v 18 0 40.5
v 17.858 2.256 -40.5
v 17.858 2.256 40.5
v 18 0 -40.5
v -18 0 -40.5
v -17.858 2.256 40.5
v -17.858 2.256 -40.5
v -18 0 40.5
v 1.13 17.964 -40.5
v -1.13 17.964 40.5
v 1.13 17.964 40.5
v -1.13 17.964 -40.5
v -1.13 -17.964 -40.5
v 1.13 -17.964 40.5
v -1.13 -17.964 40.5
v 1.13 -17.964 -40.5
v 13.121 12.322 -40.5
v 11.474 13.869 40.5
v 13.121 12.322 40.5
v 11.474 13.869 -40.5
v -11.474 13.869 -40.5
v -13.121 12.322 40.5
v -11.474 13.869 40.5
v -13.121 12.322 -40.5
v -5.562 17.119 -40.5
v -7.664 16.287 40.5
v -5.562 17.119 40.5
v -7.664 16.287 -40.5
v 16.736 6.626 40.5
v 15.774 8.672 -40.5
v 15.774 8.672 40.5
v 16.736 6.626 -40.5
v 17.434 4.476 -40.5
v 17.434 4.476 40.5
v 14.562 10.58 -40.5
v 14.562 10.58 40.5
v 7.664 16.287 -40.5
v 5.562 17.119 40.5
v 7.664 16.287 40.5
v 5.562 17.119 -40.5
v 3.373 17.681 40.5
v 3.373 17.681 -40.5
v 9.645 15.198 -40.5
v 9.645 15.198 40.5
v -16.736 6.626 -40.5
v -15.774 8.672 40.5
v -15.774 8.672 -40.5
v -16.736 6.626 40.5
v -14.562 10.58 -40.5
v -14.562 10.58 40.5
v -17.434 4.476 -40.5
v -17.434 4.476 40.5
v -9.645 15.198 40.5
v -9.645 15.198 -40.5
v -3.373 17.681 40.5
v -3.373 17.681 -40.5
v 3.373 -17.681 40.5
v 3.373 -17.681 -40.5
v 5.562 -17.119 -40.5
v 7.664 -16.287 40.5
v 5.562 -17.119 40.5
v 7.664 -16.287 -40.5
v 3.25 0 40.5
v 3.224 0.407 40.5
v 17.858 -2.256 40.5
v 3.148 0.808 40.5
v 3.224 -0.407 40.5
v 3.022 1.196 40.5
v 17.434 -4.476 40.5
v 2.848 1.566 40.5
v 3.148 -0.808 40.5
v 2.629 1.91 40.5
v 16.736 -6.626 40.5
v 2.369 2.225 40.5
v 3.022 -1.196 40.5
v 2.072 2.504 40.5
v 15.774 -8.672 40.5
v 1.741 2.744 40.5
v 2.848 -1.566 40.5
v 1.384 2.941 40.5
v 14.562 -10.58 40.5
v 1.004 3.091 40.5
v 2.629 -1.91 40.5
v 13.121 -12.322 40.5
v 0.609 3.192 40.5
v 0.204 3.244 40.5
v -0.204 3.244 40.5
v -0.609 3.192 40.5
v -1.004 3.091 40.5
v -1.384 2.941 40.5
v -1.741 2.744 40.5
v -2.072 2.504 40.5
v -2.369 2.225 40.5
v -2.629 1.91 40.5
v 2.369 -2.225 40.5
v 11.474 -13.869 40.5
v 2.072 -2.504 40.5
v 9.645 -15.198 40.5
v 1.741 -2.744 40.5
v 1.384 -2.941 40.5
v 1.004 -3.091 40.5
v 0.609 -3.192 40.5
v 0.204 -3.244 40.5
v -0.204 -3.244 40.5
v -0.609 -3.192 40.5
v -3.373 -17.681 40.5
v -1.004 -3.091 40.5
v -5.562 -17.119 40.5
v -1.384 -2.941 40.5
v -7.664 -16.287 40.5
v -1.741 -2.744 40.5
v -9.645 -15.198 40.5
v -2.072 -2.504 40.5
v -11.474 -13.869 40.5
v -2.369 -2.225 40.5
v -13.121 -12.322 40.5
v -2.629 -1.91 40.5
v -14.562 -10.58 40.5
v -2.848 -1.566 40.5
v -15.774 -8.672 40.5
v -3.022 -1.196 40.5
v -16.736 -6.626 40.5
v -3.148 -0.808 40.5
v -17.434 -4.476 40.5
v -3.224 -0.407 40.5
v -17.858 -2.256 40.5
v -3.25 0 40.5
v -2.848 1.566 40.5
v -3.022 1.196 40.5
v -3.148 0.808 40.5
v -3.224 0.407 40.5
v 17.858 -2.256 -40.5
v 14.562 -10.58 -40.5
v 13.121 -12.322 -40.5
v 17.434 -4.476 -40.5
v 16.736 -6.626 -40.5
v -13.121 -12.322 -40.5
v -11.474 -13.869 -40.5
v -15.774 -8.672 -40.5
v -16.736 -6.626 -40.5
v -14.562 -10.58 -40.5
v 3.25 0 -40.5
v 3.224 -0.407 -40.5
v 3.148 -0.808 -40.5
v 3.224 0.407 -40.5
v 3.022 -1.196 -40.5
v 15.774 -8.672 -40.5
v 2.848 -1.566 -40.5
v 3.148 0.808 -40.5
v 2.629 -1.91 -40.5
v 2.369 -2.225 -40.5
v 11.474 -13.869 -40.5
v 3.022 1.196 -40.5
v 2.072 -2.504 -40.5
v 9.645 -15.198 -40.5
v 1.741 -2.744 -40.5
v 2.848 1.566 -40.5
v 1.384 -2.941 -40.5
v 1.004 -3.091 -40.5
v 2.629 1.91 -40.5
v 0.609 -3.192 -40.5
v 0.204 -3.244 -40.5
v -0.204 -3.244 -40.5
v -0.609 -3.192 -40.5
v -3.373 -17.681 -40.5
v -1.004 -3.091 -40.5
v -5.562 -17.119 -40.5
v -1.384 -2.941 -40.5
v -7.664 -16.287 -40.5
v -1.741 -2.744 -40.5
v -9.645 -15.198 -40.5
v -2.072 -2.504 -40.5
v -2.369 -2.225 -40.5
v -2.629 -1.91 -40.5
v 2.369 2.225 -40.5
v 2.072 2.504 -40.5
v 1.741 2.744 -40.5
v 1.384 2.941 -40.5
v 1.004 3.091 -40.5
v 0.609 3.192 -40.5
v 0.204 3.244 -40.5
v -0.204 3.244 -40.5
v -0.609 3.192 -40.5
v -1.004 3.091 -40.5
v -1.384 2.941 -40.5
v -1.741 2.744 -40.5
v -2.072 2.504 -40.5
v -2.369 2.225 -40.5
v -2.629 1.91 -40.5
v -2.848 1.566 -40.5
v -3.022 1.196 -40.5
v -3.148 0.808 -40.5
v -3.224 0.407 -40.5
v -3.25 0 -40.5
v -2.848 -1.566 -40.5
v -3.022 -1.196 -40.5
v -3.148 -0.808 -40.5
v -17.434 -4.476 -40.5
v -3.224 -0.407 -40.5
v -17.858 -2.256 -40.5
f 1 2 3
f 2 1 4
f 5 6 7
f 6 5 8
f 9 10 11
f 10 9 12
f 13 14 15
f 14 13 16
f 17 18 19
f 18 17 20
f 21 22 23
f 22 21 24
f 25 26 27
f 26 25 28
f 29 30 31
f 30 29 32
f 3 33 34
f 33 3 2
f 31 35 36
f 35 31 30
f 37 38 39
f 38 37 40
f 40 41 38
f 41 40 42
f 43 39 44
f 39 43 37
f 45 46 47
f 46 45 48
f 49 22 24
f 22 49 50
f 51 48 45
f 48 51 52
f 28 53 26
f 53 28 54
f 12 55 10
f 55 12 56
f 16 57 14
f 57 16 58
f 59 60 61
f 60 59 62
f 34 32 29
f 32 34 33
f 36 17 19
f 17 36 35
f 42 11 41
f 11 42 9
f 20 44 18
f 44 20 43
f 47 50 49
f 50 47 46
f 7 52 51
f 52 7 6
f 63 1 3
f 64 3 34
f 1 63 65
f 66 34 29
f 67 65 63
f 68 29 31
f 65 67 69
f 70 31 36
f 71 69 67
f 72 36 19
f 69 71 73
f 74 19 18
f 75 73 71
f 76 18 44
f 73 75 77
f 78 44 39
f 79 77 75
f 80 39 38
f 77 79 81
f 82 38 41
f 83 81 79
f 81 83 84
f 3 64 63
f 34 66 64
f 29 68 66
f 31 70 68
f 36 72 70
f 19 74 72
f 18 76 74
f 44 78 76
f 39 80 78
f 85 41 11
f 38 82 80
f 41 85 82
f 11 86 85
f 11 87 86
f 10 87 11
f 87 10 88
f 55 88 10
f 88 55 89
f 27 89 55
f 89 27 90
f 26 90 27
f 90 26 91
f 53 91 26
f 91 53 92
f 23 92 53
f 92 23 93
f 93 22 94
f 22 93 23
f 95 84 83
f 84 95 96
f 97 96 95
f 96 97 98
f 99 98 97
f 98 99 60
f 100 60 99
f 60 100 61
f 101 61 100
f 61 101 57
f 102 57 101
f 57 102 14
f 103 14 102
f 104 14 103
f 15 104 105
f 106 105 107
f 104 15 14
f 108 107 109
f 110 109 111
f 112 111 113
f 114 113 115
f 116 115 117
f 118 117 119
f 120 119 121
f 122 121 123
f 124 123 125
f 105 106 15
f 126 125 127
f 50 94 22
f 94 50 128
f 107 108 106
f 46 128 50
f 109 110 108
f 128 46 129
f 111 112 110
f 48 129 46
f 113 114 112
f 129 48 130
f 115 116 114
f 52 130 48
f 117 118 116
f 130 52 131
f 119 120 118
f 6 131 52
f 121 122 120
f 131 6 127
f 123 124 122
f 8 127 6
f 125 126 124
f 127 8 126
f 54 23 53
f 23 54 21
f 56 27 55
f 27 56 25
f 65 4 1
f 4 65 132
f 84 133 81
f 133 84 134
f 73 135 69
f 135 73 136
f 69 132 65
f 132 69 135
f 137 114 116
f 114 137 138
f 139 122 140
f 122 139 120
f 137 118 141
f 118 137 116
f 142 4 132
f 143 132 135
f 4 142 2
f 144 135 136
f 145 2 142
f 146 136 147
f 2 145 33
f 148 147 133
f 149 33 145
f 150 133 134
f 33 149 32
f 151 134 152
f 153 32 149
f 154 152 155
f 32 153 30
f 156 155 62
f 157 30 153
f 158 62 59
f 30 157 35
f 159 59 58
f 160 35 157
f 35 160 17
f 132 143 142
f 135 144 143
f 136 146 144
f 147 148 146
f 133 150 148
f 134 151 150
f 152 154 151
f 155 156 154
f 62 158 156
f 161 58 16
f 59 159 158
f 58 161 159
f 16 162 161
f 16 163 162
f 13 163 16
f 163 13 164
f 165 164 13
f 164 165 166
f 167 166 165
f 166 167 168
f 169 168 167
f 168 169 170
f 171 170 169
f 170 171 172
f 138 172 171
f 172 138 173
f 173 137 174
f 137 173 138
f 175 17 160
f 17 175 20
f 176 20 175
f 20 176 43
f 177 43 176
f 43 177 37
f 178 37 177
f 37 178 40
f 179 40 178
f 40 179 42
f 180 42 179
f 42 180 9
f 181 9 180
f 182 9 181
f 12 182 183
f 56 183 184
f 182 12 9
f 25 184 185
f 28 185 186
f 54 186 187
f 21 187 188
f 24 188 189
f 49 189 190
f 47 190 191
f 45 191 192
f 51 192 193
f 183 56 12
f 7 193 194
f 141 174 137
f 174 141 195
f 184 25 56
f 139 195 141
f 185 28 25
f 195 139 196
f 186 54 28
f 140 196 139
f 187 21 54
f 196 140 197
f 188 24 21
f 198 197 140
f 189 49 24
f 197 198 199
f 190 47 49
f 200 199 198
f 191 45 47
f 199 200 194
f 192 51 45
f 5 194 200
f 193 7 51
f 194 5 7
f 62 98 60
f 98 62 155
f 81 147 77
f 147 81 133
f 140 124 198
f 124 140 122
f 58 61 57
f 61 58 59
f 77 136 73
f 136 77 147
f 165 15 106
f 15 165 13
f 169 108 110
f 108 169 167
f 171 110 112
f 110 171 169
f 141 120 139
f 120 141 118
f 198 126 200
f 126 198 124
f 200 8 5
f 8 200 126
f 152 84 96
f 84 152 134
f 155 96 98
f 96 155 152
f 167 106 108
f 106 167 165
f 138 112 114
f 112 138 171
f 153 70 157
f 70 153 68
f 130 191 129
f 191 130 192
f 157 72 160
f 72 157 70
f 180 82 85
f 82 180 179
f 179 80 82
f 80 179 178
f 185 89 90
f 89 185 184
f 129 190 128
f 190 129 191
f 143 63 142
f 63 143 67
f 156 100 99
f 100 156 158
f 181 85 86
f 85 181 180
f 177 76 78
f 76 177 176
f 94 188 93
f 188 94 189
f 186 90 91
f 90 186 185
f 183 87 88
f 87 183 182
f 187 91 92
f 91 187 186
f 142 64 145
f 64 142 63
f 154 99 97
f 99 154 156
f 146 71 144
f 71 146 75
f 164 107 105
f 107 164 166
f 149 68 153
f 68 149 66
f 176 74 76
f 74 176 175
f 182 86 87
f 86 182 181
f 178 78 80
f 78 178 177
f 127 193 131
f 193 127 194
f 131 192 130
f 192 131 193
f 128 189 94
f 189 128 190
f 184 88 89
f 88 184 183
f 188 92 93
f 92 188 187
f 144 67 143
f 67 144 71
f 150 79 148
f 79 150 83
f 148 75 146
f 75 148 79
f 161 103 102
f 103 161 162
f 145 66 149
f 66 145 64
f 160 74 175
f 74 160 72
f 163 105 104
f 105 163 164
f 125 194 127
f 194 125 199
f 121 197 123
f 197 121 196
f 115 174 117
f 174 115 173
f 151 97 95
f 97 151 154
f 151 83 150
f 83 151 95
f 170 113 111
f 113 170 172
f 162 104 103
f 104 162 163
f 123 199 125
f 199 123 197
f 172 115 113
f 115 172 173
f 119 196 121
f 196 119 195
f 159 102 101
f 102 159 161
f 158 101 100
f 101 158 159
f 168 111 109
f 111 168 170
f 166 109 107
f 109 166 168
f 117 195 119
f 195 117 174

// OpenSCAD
$fn = 50;


difference() {
	union() {
		translate(v = [0, 0, -40.5000000000]) {
			cylinder(h = 81, r = 18.0000000000);
		}
	}
	union() {
		translate(v = [0, 0, -100.0000000000]) {
			cylinder(h = 200, r = 3.2500000000);
		}
	}
}
